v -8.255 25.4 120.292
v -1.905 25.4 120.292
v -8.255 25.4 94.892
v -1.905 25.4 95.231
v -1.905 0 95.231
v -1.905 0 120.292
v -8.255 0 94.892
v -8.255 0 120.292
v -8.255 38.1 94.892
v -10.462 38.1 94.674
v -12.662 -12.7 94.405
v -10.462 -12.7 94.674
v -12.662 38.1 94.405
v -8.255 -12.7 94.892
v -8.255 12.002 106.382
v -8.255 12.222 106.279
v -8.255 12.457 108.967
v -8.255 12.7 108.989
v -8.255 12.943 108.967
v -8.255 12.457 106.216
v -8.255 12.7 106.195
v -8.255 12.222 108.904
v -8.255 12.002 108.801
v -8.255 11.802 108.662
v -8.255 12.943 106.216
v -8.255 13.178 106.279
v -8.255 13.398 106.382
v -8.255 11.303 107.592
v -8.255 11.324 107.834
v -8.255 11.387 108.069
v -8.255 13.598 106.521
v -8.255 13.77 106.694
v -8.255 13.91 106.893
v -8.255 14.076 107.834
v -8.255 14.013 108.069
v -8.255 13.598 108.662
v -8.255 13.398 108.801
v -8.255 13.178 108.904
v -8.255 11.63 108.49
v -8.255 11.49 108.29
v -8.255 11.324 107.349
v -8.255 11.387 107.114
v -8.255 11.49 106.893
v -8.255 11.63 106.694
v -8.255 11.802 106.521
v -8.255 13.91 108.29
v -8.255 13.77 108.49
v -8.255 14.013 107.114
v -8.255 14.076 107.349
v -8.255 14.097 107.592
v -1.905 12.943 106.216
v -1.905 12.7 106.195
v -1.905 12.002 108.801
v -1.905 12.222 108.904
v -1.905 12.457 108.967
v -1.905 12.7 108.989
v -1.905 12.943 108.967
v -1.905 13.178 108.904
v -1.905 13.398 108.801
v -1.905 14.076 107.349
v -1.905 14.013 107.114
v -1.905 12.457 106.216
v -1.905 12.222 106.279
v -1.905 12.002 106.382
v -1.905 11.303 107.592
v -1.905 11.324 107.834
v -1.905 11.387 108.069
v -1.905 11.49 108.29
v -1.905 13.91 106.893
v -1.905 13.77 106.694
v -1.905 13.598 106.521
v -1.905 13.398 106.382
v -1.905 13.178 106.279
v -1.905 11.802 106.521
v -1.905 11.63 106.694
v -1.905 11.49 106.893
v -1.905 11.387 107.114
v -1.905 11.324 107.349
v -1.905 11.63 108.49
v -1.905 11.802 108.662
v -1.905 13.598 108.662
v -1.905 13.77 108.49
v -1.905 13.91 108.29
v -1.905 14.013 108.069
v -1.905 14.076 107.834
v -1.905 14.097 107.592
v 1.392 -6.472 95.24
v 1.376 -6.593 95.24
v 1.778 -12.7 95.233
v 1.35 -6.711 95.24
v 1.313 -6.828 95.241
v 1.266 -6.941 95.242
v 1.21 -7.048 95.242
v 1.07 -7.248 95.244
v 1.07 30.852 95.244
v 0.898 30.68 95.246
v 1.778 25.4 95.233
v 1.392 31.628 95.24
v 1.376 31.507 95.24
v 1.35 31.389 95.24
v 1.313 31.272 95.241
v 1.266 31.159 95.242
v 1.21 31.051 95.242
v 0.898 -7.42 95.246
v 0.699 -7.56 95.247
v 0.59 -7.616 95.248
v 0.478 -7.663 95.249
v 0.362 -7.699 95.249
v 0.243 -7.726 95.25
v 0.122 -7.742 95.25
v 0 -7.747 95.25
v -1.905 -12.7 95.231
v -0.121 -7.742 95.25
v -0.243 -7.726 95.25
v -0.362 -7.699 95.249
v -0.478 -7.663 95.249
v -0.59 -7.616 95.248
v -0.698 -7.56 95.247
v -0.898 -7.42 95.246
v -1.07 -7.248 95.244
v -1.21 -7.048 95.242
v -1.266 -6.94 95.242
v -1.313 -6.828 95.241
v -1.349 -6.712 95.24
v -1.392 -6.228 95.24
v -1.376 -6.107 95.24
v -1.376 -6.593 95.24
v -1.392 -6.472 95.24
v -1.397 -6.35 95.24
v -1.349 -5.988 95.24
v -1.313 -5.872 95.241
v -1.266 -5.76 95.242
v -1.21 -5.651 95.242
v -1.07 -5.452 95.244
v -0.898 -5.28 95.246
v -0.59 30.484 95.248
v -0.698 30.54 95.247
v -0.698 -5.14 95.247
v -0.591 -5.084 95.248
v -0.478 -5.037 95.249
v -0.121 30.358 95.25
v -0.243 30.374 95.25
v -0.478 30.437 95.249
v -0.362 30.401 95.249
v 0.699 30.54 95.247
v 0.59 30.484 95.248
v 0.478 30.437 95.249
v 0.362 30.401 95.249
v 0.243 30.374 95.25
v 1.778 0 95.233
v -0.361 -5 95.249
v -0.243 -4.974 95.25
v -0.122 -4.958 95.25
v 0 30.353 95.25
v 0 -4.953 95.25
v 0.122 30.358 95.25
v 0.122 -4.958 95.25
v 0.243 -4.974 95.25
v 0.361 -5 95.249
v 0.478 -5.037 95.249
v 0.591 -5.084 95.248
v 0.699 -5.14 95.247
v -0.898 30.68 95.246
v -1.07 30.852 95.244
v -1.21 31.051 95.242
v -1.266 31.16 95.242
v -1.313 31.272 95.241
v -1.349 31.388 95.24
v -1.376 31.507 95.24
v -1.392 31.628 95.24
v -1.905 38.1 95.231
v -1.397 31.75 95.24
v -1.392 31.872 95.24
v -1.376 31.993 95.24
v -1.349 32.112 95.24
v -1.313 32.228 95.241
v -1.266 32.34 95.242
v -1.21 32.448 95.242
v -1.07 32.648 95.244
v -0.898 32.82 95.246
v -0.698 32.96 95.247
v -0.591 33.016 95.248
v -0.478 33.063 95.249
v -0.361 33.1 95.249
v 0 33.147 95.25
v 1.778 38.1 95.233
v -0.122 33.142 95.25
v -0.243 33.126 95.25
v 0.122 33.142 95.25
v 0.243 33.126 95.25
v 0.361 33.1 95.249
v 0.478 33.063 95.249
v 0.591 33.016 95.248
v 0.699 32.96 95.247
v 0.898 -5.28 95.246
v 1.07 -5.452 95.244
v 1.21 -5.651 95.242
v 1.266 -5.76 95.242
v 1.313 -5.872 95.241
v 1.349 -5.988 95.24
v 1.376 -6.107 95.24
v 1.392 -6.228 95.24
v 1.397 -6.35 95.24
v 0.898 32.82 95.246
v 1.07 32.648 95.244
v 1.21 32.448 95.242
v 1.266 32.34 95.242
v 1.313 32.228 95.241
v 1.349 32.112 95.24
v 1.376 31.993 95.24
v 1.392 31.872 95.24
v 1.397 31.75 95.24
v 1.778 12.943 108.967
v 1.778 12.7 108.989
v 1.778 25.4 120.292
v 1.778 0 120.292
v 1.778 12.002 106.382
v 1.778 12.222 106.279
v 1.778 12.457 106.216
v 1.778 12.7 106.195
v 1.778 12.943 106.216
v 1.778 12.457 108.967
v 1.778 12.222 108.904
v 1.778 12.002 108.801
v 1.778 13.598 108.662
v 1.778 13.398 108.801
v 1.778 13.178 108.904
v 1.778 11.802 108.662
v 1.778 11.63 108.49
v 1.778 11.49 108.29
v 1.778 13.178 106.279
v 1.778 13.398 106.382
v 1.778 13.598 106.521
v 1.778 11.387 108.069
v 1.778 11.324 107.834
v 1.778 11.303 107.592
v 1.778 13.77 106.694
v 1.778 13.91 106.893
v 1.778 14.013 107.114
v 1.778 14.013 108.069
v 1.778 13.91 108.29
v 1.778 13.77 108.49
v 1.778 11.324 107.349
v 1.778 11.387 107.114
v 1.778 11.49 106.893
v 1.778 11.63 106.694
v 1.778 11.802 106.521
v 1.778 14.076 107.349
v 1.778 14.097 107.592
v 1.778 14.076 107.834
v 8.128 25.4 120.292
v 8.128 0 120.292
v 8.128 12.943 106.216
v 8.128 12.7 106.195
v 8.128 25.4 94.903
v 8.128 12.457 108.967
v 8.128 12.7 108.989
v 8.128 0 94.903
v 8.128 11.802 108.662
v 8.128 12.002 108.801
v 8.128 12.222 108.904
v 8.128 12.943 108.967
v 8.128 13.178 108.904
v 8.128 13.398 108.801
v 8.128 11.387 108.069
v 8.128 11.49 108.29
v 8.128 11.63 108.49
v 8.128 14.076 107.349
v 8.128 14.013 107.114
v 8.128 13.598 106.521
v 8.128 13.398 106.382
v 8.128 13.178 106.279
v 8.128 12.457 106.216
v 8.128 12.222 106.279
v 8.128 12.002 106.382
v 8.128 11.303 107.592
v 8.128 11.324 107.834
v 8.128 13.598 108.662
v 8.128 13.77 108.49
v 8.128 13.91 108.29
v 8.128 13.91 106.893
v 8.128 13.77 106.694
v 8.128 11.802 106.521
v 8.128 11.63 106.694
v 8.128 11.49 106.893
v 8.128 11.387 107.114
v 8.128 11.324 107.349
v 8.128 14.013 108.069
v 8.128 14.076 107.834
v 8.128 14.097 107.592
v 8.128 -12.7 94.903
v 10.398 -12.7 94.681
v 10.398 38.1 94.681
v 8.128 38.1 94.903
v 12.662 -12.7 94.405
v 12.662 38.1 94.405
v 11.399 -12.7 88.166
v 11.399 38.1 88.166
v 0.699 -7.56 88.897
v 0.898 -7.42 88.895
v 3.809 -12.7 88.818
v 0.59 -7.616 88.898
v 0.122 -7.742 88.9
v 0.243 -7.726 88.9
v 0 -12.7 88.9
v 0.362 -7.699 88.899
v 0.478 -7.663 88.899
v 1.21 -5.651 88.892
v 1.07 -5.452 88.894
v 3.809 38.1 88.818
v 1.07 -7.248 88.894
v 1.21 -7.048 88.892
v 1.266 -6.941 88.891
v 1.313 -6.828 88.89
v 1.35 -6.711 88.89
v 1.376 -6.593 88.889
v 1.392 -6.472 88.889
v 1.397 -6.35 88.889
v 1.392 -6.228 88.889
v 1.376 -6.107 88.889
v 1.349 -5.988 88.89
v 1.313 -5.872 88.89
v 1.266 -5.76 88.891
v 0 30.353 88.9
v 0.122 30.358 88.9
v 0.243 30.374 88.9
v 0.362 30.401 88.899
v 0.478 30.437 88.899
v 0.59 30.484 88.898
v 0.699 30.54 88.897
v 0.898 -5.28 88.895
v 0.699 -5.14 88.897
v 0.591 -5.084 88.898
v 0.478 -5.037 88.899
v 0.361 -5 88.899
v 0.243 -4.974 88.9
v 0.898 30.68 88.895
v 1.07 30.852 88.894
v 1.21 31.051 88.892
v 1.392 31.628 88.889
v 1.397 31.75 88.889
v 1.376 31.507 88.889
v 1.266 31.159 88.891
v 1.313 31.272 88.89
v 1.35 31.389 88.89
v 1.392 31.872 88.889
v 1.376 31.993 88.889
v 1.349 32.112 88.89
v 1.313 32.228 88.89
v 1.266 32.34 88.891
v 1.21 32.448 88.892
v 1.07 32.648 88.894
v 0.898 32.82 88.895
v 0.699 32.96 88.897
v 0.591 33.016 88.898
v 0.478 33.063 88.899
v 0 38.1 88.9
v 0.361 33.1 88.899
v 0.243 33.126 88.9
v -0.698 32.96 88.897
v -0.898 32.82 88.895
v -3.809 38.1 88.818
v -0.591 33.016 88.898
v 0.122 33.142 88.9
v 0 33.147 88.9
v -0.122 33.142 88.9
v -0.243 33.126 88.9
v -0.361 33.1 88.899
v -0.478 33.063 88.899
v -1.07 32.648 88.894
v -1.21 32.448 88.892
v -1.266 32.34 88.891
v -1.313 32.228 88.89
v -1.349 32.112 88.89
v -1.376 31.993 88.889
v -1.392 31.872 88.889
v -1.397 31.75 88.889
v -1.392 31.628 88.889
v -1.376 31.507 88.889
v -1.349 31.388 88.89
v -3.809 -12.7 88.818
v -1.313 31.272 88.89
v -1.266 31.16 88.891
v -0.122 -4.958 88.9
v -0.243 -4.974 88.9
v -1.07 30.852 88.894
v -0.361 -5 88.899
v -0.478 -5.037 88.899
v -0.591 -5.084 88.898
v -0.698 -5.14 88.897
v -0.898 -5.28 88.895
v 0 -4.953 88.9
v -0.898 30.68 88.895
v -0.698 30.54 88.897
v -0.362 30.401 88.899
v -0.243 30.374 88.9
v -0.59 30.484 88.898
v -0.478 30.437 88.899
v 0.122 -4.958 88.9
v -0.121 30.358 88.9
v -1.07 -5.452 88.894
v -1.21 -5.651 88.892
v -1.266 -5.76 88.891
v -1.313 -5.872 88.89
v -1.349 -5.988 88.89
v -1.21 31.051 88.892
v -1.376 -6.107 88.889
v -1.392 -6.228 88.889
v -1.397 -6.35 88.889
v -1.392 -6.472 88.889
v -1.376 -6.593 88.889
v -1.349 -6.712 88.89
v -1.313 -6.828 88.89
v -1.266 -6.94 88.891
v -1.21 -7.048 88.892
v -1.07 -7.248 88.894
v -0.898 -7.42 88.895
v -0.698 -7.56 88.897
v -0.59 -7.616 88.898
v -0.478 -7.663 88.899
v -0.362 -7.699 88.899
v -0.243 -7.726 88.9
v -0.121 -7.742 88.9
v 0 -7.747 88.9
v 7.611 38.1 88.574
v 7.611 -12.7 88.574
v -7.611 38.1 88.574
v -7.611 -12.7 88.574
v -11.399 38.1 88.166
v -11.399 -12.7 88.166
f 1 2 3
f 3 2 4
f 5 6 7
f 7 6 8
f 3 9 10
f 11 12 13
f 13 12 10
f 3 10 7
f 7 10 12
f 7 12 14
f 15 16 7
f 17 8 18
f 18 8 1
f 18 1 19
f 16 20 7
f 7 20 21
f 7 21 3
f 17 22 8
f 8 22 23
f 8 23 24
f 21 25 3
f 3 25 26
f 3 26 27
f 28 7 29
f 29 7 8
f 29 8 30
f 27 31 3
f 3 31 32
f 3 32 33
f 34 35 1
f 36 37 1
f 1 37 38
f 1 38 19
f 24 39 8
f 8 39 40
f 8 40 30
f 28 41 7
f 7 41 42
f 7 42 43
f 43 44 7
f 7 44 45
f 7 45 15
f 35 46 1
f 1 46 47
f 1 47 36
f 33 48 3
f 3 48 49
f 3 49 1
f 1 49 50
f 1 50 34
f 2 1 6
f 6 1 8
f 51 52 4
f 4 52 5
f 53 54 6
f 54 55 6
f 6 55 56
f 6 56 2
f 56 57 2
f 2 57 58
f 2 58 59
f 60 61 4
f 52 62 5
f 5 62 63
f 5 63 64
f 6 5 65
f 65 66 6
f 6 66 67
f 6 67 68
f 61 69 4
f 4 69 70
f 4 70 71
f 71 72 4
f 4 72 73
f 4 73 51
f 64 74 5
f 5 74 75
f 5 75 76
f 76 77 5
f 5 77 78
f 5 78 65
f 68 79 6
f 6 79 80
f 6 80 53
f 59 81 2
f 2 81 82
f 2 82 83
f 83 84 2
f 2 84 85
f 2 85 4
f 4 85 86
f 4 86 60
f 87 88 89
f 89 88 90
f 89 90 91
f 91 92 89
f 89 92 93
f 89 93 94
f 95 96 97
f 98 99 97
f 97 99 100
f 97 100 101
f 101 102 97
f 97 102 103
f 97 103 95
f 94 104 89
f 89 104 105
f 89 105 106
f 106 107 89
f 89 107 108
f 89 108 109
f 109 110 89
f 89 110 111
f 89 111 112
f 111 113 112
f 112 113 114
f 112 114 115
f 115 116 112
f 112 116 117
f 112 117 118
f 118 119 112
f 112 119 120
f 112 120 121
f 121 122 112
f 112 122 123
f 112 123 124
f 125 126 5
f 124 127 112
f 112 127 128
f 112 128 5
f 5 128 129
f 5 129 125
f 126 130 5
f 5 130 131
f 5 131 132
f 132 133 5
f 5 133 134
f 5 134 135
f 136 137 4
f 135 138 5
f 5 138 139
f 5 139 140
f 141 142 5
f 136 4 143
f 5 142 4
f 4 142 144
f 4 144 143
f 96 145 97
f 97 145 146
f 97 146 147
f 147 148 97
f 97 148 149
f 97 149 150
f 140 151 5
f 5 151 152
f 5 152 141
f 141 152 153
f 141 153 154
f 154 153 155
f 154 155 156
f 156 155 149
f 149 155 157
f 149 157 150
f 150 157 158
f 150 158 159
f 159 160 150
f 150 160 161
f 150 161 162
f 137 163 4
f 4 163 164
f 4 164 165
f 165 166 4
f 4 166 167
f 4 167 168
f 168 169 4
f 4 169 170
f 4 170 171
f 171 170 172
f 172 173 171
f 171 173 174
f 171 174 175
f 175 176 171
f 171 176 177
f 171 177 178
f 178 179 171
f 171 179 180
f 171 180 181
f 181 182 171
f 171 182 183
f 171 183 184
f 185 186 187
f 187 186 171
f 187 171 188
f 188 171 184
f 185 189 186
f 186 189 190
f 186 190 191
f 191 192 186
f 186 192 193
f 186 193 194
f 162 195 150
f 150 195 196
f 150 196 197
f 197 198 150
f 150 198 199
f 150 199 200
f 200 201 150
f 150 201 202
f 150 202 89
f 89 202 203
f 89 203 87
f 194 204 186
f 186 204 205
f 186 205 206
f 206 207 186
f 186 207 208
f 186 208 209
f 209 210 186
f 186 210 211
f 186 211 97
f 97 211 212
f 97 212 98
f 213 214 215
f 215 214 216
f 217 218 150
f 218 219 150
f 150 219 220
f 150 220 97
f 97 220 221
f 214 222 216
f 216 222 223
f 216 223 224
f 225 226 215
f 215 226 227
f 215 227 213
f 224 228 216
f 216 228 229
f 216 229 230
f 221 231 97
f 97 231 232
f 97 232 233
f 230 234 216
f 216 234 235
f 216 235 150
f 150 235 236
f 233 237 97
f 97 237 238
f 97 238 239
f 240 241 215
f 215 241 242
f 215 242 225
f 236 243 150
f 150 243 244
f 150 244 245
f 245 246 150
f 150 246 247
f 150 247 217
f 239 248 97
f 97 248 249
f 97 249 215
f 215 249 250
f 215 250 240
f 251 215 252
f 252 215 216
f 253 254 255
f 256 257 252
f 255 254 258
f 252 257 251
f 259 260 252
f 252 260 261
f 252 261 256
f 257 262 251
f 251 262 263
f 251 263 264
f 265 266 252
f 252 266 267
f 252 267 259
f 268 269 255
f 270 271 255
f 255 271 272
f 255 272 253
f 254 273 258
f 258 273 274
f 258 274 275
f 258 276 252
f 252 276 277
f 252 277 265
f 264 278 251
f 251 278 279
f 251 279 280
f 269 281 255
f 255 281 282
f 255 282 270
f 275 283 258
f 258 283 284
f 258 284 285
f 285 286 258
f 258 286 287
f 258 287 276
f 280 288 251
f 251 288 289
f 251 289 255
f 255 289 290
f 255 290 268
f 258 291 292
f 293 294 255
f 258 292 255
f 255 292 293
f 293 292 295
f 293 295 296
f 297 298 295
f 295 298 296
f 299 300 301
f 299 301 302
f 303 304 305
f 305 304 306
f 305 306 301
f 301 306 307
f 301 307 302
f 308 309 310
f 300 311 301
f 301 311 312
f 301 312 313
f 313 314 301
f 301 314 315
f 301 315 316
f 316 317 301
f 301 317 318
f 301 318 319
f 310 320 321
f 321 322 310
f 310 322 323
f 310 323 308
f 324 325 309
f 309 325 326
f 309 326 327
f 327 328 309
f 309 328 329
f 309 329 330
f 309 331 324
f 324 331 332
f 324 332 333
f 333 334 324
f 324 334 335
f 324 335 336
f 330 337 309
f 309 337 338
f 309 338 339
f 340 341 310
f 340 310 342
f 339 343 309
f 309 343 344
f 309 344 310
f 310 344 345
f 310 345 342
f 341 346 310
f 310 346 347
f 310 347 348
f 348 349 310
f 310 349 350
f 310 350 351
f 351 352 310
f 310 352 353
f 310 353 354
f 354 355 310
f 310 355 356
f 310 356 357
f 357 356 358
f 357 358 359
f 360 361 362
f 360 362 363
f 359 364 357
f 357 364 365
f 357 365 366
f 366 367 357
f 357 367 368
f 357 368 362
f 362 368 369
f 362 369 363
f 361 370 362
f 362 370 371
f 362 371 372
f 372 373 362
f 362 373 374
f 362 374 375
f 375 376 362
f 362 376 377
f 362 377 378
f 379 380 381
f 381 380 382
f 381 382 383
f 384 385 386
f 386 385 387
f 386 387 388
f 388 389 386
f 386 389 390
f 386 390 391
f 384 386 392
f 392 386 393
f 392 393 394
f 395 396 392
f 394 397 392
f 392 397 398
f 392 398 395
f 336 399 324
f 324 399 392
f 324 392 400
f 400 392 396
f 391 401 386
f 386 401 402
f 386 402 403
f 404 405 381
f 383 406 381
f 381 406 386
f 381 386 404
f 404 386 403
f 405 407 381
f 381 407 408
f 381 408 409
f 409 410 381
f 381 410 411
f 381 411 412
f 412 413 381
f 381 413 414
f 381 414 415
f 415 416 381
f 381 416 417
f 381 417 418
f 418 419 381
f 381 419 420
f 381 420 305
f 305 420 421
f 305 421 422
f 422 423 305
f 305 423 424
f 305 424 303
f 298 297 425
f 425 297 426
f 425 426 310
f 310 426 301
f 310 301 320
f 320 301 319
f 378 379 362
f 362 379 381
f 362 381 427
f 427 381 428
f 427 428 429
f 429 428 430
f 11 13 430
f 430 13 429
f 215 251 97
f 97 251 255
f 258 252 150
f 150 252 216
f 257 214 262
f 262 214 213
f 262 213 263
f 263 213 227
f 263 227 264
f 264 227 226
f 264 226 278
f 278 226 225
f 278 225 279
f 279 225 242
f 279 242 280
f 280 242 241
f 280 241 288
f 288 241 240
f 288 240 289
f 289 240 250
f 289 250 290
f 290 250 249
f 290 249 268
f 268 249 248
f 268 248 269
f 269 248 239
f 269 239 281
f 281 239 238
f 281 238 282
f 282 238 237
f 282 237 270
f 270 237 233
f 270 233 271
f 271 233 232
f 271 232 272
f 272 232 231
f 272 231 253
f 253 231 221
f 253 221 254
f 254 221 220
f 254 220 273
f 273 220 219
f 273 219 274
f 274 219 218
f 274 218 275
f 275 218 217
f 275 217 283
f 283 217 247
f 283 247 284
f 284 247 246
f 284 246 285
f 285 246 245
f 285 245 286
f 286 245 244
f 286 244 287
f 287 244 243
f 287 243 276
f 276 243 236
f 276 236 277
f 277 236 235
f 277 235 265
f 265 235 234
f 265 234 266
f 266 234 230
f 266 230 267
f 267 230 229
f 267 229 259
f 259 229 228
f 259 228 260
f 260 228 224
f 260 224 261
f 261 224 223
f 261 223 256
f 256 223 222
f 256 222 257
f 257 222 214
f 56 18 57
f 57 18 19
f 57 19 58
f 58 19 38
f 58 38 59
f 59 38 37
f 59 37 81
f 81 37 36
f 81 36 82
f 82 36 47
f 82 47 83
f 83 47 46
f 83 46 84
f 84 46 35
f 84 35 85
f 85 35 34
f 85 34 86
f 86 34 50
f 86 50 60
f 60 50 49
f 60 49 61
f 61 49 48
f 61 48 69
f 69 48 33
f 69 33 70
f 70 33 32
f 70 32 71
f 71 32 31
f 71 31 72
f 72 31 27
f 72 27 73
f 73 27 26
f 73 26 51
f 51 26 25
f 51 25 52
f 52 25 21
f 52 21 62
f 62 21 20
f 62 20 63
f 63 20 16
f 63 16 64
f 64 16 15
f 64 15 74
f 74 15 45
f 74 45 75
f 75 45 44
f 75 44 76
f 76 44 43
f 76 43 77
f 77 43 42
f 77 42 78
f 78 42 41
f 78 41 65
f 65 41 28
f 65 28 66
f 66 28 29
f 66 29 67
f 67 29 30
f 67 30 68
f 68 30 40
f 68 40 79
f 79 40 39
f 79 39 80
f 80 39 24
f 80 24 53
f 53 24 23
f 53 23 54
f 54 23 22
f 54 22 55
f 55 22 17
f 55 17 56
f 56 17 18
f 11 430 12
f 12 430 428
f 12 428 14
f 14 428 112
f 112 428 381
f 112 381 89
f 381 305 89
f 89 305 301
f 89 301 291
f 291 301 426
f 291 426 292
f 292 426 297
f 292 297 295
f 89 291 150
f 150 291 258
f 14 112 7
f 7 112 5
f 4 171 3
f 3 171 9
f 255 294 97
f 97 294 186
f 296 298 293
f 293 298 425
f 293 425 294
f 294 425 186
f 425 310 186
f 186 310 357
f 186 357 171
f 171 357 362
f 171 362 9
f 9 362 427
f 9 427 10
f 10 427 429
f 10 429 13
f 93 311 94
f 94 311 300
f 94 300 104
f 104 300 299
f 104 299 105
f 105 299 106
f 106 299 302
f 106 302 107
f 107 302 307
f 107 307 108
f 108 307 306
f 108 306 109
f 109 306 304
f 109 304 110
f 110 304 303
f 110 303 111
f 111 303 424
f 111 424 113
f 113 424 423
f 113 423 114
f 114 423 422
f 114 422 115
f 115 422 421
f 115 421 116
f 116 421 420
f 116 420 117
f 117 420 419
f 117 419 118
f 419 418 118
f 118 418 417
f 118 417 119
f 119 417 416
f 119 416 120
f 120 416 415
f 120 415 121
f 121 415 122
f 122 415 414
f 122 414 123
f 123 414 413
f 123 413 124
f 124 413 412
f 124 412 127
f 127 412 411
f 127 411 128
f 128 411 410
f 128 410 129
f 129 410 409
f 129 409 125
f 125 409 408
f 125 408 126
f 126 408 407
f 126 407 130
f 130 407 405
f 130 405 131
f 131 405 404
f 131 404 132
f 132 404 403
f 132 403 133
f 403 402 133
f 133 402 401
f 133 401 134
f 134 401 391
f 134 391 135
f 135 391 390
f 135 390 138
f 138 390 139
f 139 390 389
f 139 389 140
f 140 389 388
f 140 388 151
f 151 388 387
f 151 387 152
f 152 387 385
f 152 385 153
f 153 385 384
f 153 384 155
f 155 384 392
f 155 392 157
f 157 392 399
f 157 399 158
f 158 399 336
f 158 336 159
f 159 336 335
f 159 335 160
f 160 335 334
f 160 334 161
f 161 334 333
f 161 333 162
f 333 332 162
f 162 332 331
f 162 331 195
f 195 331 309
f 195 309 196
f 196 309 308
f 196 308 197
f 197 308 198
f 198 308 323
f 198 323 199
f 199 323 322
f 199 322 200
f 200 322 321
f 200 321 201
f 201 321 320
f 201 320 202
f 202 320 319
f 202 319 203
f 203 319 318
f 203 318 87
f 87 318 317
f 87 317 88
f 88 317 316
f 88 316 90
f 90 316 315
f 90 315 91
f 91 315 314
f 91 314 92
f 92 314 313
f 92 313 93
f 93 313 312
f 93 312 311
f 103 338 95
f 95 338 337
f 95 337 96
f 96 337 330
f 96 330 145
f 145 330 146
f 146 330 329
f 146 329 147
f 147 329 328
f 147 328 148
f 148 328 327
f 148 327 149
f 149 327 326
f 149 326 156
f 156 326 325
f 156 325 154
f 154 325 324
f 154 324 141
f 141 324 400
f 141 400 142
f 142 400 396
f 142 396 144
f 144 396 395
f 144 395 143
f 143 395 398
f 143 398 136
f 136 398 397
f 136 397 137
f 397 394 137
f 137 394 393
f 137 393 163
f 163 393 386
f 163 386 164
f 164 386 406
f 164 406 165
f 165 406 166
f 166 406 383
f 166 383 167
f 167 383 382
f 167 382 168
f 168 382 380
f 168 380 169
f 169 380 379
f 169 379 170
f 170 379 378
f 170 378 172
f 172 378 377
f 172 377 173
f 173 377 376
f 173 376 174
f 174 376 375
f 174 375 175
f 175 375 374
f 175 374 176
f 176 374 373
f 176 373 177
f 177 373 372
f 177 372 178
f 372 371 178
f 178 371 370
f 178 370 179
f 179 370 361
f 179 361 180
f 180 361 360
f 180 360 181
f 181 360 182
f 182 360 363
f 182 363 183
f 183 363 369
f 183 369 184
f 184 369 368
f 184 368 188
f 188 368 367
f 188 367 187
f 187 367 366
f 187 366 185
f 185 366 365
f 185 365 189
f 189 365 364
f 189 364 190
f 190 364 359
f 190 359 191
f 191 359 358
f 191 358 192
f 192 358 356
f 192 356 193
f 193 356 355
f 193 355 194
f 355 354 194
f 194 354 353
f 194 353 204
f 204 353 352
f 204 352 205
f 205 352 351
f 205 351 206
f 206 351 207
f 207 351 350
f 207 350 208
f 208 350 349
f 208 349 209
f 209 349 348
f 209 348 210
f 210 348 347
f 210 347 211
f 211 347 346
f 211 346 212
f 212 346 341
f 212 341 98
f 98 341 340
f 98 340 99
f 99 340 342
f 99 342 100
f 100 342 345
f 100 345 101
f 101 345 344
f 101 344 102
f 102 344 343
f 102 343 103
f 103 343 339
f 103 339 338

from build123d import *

# Parameters (mm, degrees)
BOSS_EXTRUDE1_DEPTH      = 25.4
SKETCH3_R                = 1.397
CUT_EXTRUDE2_DEPTH       = 25.4
BOSS_EXTRUDE2_DEPTH      = 12.7
BOSS_EXTRUDE2_DEPTH_BACK = 38.1
CUT_EXTRUDE3_REACH       = 34.125
SKETCH5_R                = 1.397


with BuildPart() as part:
    # Sketch1 → Boss-Extrude1 (new body)
    with BuildSketch(Plane(origin=(0, 0, 0), x_dir=(1, 0, 0), z_dir=(0, 1, 0))):
        with BuildLine():
            Line((-8.255, -94.891609086), (-8.255, -120.291609086))
            Line((-8.255, -120.291609086), (-1.905, -120.291609086))
            Line((-1.905, -120.291609086), (-1.905, -95.230948095))
            ThreePointArc((-1.905, -95.230948095), (-0.063511871, -95.249978825), (1.778, -95.233403888))
            Line((1.778, -95.233403888), (1.778, -120.291609086))
            Line((1.778, -120.291609086), (8.128, -120.291609086))
            Line((8.128, -120.291609086), (8.128, -94.902571704))
            ThreePointArc((8.128, -94.902571704), (10.398183486, -94.680728135), (12.662403805, -94.404586911))
            Line((12.662403805, -94.404586911), (11.398535202, -88.166225933))
            ThreePointArc((11.398535202, -88.166225933), (0, -88.9), (-11.398535202, -88.166225933))
            Line((-11.398535202, -88.166225933), (-12.662403805, -94.404586911))
            ThreePointArc((-12.662403805, -94.404586911), (-10.461536366, -94.673749038), (-8.255, -94.891609086))
        make_face()
    extrude(amount=BOSS_EXTRUDE1_DEPTH)

    # Sketch3 → Cut-Extrude2 (cut)
    with BuildSketch(Plane.ZY.offset(8.255)):
        with Locations((107.591609086, 12.7)):
            Circle(SKETCH3_R)
    extrude(amount=-CUT_EXTRUDE2_DEPTH, mode=Mode.SUBTRACT)

    # Sketch4 → Boss-Extrude2 (add, two sides)
    with BuildSketch(Plane(origin=(0, 25.4, 0), x_dir=(1, 0, 0), z_dir=(0, 1, 0))) as boss_extrude2_sk:
        with BuildLine():
            Line((1.778, -95.233403888), (8.128, -94.902571704))
            ThreePointArc((8.128, -94.902571704), (10.398183486, -94.680728135), (12.662403805, -94.404586911))
            Line((12.662403805, -94.404586911), (11.398535202, -88.166225933))
            ThreePointArc((11.398535202, -88.166225933), (0, -88.9), (-11.398535202, -88.166225933))
            Line((-11.398535202, -88.166225933), (-12.662403805, -94.404586911))
            ThreePointArc((-12.662403805, -94.404586911), (-10.461536366, -94.673749038), (-8.255, -94.891609086))
            Line((-8.255, -94.891609086), (-1.905, -95.230948095))
            ThreePointArc((-1.905, -95.230948095), (-0.063511871, -95.249978825), (1.778, -95.233403888))
        make_face()
    extrude(amount=BOSS_EXTRUDE2_DEPTH)
    extrude(boss_extrude2_sk.sketch, amount=-BOSS_EXTRUDE2_DEPTH_BACK)

    # Sketch5 → Cut-Extrude3 (cut, up to next)
    with BuildSketch(Plane.XY.offset(120.291609086), mode=Mode.PRIVATE) as cut_extrude3_sk1:
        with Locations((0, 31.75)):
            Circle(SKETCH5_R)
    cut_extrude3_tool1 = extrude(cut_extrude3_sk1.sketch, amount=-CUT_EXTRUDE3_REACH, mode=Mode.PRIVATE) & part.part
    add(cut_extrude3_tool1.solids().sort_by_distance((0, 31.75, 120.291609))[0], mode=Mode.SUBTRACT)
    # Sketch5 → Cut-Extrude3 (cut, up to next)
    with BuildSketch(Plane.XY.offset(120.291609086), mode=Mode.PRIVATE) as cut_extrude3_sk2:
        with Locations((0, -6.35)):
            Circle(SKETCH5_R)
    cut_extrude3_tool2 = extrude(cut_extrude3_sk2.sketch, amount=-CUT_EXTRUDE3_REACH, mode=Mode.PRIVATE) & part.part
    add(cut_extrude3_tool2.solids().sort_by_distance((0, -6.35, 120.291609))[0], mode=Mode.SUBTRACT)


solid = part.part
